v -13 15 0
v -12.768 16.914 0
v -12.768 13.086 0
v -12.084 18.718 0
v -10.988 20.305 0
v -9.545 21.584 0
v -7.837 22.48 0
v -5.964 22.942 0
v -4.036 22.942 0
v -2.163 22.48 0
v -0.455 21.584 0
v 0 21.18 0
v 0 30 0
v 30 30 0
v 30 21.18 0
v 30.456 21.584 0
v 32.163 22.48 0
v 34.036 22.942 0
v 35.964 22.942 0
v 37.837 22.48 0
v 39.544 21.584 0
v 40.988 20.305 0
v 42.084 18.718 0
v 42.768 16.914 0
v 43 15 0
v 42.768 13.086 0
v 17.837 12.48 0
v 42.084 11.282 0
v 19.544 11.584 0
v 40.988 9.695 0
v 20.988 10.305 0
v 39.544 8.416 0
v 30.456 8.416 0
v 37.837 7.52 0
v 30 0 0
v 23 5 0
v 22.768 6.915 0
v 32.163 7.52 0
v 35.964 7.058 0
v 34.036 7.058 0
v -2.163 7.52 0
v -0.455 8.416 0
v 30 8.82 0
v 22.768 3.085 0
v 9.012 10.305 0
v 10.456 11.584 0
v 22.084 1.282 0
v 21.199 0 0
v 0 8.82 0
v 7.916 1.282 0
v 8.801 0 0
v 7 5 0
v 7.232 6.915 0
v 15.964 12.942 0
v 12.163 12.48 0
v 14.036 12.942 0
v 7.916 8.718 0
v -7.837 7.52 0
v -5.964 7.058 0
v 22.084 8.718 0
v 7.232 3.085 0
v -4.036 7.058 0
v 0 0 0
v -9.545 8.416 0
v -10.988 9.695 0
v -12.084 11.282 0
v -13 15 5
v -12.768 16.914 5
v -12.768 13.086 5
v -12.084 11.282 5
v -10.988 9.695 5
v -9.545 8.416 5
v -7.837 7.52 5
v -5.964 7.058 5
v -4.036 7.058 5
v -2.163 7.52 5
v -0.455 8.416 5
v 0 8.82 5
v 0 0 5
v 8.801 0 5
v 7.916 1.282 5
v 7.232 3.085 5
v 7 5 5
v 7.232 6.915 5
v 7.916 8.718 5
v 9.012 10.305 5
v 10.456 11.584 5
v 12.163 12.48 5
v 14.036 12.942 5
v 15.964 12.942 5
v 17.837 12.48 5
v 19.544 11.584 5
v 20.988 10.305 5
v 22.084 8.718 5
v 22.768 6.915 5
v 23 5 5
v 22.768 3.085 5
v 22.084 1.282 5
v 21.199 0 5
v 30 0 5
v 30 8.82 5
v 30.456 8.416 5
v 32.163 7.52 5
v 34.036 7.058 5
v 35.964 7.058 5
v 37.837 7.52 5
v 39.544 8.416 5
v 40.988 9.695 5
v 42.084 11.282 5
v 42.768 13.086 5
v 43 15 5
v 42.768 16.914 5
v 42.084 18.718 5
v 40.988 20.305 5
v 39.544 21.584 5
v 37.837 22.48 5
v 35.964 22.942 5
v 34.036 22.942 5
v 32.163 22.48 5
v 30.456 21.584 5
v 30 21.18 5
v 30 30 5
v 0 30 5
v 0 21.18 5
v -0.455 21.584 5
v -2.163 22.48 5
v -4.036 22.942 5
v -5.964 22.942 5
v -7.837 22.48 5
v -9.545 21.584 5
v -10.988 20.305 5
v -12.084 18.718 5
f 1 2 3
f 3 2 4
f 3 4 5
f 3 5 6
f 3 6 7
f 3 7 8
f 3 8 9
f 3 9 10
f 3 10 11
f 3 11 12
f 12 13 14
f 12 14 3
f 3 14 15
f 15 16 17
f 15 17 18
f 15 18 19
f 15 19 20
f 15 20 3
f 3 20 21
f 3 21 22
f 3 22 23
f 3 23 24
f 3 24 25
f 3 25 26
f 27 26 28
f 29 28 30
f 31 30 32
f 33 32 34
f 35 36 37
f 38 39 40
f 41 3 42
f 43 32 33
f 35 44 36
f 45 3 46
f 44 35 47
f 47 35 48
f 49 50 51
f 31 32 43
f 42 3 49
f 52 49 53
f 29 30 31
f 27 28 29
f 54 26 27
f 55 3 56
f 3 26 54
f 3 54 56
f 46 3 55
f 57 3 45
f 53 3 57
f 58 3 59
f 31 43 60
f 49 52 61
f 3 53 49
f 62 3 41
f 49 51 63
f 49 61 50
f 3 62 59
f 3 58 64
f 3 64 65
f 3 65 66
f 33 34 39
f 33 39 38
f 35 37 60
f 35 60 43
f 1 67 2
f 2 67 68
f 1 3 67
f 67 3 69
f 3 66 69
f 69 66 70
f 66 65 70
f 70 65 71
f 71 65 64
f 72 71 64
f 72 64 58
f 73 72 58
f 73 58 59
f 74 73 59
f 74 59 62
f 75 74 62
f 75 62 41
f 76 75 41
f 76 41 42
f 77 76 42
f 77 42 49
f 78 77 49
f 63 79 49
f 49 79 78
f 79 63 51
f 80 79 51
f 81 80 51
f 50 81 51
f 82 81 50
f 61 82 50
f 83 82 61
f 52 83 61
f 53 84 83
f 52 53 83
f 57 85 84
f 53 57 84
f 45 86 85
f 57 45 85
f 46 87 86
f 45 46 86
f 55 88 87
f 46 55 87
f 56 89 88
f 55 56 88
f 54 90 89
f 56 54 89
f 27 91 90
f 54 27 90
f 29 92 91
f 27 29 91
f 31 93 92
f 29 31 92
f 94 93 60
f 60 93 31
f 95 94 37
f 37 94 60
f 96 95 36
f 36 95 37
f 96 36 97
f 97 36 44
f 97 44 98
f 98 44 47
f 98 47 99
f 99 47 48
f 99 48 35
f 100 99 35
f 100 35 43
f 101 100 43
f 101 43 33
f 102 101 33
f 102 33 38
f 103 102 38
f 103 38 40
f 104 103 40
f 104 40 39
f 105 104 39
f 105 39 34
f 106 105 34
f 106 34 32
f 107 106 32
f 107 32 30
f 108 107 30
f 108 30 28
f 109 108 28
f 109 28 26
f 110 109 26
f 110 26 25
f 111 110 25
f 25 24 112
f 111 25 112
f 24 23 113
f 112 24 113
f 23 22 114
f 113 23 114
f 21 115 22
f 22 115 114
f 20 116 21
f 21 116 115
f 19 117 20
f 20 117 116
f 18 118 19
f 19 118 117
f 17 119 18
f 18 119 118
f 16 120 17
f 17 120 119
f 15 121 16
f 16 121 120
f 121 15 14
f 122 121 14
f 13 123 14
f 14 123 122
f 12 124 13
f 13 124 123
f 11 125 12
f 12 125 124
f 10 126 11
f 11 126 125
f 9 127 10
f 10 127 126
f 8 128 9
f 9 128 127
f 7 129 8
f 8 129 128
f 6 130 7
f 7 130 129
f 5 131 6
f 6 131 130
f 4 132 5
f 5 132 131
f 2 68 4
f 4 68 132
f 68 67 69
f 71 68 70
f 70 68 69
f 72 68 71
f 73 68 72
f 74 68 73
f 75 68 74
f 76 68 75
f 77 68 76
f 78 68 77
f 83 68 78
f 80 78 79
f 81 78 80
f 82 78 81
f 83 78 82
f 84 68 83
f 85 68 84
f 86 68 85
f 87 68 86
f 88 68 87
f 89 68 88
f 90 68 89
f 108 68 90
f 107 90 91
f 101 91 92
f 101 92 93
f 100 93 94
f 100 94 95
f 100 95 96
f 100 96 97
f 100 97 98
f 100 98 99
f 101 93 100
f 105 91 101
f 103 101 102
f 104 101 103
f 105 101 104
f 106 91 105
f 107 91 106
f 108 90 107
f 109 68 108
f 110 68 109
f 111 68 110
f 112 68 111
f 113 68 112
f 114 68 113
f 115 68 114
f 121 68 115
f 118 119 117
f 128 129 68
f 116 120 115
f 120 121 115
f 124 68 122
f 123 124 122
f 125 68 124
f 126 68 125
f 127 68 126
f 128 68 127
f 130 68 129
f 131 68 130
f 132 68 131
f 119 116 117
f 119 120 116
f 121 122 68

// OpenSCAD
//SODA LABS 25.07.2014 Loguncov Maxim
//12 штук


difference(){
cube([30,30,5,]);
translate([15,5,0])
cylinder(6,8,8);
}
translate([-5,15,0])
cylinder(5,8,8);
translate([35,15,0])
cylinder(5,8,8);
